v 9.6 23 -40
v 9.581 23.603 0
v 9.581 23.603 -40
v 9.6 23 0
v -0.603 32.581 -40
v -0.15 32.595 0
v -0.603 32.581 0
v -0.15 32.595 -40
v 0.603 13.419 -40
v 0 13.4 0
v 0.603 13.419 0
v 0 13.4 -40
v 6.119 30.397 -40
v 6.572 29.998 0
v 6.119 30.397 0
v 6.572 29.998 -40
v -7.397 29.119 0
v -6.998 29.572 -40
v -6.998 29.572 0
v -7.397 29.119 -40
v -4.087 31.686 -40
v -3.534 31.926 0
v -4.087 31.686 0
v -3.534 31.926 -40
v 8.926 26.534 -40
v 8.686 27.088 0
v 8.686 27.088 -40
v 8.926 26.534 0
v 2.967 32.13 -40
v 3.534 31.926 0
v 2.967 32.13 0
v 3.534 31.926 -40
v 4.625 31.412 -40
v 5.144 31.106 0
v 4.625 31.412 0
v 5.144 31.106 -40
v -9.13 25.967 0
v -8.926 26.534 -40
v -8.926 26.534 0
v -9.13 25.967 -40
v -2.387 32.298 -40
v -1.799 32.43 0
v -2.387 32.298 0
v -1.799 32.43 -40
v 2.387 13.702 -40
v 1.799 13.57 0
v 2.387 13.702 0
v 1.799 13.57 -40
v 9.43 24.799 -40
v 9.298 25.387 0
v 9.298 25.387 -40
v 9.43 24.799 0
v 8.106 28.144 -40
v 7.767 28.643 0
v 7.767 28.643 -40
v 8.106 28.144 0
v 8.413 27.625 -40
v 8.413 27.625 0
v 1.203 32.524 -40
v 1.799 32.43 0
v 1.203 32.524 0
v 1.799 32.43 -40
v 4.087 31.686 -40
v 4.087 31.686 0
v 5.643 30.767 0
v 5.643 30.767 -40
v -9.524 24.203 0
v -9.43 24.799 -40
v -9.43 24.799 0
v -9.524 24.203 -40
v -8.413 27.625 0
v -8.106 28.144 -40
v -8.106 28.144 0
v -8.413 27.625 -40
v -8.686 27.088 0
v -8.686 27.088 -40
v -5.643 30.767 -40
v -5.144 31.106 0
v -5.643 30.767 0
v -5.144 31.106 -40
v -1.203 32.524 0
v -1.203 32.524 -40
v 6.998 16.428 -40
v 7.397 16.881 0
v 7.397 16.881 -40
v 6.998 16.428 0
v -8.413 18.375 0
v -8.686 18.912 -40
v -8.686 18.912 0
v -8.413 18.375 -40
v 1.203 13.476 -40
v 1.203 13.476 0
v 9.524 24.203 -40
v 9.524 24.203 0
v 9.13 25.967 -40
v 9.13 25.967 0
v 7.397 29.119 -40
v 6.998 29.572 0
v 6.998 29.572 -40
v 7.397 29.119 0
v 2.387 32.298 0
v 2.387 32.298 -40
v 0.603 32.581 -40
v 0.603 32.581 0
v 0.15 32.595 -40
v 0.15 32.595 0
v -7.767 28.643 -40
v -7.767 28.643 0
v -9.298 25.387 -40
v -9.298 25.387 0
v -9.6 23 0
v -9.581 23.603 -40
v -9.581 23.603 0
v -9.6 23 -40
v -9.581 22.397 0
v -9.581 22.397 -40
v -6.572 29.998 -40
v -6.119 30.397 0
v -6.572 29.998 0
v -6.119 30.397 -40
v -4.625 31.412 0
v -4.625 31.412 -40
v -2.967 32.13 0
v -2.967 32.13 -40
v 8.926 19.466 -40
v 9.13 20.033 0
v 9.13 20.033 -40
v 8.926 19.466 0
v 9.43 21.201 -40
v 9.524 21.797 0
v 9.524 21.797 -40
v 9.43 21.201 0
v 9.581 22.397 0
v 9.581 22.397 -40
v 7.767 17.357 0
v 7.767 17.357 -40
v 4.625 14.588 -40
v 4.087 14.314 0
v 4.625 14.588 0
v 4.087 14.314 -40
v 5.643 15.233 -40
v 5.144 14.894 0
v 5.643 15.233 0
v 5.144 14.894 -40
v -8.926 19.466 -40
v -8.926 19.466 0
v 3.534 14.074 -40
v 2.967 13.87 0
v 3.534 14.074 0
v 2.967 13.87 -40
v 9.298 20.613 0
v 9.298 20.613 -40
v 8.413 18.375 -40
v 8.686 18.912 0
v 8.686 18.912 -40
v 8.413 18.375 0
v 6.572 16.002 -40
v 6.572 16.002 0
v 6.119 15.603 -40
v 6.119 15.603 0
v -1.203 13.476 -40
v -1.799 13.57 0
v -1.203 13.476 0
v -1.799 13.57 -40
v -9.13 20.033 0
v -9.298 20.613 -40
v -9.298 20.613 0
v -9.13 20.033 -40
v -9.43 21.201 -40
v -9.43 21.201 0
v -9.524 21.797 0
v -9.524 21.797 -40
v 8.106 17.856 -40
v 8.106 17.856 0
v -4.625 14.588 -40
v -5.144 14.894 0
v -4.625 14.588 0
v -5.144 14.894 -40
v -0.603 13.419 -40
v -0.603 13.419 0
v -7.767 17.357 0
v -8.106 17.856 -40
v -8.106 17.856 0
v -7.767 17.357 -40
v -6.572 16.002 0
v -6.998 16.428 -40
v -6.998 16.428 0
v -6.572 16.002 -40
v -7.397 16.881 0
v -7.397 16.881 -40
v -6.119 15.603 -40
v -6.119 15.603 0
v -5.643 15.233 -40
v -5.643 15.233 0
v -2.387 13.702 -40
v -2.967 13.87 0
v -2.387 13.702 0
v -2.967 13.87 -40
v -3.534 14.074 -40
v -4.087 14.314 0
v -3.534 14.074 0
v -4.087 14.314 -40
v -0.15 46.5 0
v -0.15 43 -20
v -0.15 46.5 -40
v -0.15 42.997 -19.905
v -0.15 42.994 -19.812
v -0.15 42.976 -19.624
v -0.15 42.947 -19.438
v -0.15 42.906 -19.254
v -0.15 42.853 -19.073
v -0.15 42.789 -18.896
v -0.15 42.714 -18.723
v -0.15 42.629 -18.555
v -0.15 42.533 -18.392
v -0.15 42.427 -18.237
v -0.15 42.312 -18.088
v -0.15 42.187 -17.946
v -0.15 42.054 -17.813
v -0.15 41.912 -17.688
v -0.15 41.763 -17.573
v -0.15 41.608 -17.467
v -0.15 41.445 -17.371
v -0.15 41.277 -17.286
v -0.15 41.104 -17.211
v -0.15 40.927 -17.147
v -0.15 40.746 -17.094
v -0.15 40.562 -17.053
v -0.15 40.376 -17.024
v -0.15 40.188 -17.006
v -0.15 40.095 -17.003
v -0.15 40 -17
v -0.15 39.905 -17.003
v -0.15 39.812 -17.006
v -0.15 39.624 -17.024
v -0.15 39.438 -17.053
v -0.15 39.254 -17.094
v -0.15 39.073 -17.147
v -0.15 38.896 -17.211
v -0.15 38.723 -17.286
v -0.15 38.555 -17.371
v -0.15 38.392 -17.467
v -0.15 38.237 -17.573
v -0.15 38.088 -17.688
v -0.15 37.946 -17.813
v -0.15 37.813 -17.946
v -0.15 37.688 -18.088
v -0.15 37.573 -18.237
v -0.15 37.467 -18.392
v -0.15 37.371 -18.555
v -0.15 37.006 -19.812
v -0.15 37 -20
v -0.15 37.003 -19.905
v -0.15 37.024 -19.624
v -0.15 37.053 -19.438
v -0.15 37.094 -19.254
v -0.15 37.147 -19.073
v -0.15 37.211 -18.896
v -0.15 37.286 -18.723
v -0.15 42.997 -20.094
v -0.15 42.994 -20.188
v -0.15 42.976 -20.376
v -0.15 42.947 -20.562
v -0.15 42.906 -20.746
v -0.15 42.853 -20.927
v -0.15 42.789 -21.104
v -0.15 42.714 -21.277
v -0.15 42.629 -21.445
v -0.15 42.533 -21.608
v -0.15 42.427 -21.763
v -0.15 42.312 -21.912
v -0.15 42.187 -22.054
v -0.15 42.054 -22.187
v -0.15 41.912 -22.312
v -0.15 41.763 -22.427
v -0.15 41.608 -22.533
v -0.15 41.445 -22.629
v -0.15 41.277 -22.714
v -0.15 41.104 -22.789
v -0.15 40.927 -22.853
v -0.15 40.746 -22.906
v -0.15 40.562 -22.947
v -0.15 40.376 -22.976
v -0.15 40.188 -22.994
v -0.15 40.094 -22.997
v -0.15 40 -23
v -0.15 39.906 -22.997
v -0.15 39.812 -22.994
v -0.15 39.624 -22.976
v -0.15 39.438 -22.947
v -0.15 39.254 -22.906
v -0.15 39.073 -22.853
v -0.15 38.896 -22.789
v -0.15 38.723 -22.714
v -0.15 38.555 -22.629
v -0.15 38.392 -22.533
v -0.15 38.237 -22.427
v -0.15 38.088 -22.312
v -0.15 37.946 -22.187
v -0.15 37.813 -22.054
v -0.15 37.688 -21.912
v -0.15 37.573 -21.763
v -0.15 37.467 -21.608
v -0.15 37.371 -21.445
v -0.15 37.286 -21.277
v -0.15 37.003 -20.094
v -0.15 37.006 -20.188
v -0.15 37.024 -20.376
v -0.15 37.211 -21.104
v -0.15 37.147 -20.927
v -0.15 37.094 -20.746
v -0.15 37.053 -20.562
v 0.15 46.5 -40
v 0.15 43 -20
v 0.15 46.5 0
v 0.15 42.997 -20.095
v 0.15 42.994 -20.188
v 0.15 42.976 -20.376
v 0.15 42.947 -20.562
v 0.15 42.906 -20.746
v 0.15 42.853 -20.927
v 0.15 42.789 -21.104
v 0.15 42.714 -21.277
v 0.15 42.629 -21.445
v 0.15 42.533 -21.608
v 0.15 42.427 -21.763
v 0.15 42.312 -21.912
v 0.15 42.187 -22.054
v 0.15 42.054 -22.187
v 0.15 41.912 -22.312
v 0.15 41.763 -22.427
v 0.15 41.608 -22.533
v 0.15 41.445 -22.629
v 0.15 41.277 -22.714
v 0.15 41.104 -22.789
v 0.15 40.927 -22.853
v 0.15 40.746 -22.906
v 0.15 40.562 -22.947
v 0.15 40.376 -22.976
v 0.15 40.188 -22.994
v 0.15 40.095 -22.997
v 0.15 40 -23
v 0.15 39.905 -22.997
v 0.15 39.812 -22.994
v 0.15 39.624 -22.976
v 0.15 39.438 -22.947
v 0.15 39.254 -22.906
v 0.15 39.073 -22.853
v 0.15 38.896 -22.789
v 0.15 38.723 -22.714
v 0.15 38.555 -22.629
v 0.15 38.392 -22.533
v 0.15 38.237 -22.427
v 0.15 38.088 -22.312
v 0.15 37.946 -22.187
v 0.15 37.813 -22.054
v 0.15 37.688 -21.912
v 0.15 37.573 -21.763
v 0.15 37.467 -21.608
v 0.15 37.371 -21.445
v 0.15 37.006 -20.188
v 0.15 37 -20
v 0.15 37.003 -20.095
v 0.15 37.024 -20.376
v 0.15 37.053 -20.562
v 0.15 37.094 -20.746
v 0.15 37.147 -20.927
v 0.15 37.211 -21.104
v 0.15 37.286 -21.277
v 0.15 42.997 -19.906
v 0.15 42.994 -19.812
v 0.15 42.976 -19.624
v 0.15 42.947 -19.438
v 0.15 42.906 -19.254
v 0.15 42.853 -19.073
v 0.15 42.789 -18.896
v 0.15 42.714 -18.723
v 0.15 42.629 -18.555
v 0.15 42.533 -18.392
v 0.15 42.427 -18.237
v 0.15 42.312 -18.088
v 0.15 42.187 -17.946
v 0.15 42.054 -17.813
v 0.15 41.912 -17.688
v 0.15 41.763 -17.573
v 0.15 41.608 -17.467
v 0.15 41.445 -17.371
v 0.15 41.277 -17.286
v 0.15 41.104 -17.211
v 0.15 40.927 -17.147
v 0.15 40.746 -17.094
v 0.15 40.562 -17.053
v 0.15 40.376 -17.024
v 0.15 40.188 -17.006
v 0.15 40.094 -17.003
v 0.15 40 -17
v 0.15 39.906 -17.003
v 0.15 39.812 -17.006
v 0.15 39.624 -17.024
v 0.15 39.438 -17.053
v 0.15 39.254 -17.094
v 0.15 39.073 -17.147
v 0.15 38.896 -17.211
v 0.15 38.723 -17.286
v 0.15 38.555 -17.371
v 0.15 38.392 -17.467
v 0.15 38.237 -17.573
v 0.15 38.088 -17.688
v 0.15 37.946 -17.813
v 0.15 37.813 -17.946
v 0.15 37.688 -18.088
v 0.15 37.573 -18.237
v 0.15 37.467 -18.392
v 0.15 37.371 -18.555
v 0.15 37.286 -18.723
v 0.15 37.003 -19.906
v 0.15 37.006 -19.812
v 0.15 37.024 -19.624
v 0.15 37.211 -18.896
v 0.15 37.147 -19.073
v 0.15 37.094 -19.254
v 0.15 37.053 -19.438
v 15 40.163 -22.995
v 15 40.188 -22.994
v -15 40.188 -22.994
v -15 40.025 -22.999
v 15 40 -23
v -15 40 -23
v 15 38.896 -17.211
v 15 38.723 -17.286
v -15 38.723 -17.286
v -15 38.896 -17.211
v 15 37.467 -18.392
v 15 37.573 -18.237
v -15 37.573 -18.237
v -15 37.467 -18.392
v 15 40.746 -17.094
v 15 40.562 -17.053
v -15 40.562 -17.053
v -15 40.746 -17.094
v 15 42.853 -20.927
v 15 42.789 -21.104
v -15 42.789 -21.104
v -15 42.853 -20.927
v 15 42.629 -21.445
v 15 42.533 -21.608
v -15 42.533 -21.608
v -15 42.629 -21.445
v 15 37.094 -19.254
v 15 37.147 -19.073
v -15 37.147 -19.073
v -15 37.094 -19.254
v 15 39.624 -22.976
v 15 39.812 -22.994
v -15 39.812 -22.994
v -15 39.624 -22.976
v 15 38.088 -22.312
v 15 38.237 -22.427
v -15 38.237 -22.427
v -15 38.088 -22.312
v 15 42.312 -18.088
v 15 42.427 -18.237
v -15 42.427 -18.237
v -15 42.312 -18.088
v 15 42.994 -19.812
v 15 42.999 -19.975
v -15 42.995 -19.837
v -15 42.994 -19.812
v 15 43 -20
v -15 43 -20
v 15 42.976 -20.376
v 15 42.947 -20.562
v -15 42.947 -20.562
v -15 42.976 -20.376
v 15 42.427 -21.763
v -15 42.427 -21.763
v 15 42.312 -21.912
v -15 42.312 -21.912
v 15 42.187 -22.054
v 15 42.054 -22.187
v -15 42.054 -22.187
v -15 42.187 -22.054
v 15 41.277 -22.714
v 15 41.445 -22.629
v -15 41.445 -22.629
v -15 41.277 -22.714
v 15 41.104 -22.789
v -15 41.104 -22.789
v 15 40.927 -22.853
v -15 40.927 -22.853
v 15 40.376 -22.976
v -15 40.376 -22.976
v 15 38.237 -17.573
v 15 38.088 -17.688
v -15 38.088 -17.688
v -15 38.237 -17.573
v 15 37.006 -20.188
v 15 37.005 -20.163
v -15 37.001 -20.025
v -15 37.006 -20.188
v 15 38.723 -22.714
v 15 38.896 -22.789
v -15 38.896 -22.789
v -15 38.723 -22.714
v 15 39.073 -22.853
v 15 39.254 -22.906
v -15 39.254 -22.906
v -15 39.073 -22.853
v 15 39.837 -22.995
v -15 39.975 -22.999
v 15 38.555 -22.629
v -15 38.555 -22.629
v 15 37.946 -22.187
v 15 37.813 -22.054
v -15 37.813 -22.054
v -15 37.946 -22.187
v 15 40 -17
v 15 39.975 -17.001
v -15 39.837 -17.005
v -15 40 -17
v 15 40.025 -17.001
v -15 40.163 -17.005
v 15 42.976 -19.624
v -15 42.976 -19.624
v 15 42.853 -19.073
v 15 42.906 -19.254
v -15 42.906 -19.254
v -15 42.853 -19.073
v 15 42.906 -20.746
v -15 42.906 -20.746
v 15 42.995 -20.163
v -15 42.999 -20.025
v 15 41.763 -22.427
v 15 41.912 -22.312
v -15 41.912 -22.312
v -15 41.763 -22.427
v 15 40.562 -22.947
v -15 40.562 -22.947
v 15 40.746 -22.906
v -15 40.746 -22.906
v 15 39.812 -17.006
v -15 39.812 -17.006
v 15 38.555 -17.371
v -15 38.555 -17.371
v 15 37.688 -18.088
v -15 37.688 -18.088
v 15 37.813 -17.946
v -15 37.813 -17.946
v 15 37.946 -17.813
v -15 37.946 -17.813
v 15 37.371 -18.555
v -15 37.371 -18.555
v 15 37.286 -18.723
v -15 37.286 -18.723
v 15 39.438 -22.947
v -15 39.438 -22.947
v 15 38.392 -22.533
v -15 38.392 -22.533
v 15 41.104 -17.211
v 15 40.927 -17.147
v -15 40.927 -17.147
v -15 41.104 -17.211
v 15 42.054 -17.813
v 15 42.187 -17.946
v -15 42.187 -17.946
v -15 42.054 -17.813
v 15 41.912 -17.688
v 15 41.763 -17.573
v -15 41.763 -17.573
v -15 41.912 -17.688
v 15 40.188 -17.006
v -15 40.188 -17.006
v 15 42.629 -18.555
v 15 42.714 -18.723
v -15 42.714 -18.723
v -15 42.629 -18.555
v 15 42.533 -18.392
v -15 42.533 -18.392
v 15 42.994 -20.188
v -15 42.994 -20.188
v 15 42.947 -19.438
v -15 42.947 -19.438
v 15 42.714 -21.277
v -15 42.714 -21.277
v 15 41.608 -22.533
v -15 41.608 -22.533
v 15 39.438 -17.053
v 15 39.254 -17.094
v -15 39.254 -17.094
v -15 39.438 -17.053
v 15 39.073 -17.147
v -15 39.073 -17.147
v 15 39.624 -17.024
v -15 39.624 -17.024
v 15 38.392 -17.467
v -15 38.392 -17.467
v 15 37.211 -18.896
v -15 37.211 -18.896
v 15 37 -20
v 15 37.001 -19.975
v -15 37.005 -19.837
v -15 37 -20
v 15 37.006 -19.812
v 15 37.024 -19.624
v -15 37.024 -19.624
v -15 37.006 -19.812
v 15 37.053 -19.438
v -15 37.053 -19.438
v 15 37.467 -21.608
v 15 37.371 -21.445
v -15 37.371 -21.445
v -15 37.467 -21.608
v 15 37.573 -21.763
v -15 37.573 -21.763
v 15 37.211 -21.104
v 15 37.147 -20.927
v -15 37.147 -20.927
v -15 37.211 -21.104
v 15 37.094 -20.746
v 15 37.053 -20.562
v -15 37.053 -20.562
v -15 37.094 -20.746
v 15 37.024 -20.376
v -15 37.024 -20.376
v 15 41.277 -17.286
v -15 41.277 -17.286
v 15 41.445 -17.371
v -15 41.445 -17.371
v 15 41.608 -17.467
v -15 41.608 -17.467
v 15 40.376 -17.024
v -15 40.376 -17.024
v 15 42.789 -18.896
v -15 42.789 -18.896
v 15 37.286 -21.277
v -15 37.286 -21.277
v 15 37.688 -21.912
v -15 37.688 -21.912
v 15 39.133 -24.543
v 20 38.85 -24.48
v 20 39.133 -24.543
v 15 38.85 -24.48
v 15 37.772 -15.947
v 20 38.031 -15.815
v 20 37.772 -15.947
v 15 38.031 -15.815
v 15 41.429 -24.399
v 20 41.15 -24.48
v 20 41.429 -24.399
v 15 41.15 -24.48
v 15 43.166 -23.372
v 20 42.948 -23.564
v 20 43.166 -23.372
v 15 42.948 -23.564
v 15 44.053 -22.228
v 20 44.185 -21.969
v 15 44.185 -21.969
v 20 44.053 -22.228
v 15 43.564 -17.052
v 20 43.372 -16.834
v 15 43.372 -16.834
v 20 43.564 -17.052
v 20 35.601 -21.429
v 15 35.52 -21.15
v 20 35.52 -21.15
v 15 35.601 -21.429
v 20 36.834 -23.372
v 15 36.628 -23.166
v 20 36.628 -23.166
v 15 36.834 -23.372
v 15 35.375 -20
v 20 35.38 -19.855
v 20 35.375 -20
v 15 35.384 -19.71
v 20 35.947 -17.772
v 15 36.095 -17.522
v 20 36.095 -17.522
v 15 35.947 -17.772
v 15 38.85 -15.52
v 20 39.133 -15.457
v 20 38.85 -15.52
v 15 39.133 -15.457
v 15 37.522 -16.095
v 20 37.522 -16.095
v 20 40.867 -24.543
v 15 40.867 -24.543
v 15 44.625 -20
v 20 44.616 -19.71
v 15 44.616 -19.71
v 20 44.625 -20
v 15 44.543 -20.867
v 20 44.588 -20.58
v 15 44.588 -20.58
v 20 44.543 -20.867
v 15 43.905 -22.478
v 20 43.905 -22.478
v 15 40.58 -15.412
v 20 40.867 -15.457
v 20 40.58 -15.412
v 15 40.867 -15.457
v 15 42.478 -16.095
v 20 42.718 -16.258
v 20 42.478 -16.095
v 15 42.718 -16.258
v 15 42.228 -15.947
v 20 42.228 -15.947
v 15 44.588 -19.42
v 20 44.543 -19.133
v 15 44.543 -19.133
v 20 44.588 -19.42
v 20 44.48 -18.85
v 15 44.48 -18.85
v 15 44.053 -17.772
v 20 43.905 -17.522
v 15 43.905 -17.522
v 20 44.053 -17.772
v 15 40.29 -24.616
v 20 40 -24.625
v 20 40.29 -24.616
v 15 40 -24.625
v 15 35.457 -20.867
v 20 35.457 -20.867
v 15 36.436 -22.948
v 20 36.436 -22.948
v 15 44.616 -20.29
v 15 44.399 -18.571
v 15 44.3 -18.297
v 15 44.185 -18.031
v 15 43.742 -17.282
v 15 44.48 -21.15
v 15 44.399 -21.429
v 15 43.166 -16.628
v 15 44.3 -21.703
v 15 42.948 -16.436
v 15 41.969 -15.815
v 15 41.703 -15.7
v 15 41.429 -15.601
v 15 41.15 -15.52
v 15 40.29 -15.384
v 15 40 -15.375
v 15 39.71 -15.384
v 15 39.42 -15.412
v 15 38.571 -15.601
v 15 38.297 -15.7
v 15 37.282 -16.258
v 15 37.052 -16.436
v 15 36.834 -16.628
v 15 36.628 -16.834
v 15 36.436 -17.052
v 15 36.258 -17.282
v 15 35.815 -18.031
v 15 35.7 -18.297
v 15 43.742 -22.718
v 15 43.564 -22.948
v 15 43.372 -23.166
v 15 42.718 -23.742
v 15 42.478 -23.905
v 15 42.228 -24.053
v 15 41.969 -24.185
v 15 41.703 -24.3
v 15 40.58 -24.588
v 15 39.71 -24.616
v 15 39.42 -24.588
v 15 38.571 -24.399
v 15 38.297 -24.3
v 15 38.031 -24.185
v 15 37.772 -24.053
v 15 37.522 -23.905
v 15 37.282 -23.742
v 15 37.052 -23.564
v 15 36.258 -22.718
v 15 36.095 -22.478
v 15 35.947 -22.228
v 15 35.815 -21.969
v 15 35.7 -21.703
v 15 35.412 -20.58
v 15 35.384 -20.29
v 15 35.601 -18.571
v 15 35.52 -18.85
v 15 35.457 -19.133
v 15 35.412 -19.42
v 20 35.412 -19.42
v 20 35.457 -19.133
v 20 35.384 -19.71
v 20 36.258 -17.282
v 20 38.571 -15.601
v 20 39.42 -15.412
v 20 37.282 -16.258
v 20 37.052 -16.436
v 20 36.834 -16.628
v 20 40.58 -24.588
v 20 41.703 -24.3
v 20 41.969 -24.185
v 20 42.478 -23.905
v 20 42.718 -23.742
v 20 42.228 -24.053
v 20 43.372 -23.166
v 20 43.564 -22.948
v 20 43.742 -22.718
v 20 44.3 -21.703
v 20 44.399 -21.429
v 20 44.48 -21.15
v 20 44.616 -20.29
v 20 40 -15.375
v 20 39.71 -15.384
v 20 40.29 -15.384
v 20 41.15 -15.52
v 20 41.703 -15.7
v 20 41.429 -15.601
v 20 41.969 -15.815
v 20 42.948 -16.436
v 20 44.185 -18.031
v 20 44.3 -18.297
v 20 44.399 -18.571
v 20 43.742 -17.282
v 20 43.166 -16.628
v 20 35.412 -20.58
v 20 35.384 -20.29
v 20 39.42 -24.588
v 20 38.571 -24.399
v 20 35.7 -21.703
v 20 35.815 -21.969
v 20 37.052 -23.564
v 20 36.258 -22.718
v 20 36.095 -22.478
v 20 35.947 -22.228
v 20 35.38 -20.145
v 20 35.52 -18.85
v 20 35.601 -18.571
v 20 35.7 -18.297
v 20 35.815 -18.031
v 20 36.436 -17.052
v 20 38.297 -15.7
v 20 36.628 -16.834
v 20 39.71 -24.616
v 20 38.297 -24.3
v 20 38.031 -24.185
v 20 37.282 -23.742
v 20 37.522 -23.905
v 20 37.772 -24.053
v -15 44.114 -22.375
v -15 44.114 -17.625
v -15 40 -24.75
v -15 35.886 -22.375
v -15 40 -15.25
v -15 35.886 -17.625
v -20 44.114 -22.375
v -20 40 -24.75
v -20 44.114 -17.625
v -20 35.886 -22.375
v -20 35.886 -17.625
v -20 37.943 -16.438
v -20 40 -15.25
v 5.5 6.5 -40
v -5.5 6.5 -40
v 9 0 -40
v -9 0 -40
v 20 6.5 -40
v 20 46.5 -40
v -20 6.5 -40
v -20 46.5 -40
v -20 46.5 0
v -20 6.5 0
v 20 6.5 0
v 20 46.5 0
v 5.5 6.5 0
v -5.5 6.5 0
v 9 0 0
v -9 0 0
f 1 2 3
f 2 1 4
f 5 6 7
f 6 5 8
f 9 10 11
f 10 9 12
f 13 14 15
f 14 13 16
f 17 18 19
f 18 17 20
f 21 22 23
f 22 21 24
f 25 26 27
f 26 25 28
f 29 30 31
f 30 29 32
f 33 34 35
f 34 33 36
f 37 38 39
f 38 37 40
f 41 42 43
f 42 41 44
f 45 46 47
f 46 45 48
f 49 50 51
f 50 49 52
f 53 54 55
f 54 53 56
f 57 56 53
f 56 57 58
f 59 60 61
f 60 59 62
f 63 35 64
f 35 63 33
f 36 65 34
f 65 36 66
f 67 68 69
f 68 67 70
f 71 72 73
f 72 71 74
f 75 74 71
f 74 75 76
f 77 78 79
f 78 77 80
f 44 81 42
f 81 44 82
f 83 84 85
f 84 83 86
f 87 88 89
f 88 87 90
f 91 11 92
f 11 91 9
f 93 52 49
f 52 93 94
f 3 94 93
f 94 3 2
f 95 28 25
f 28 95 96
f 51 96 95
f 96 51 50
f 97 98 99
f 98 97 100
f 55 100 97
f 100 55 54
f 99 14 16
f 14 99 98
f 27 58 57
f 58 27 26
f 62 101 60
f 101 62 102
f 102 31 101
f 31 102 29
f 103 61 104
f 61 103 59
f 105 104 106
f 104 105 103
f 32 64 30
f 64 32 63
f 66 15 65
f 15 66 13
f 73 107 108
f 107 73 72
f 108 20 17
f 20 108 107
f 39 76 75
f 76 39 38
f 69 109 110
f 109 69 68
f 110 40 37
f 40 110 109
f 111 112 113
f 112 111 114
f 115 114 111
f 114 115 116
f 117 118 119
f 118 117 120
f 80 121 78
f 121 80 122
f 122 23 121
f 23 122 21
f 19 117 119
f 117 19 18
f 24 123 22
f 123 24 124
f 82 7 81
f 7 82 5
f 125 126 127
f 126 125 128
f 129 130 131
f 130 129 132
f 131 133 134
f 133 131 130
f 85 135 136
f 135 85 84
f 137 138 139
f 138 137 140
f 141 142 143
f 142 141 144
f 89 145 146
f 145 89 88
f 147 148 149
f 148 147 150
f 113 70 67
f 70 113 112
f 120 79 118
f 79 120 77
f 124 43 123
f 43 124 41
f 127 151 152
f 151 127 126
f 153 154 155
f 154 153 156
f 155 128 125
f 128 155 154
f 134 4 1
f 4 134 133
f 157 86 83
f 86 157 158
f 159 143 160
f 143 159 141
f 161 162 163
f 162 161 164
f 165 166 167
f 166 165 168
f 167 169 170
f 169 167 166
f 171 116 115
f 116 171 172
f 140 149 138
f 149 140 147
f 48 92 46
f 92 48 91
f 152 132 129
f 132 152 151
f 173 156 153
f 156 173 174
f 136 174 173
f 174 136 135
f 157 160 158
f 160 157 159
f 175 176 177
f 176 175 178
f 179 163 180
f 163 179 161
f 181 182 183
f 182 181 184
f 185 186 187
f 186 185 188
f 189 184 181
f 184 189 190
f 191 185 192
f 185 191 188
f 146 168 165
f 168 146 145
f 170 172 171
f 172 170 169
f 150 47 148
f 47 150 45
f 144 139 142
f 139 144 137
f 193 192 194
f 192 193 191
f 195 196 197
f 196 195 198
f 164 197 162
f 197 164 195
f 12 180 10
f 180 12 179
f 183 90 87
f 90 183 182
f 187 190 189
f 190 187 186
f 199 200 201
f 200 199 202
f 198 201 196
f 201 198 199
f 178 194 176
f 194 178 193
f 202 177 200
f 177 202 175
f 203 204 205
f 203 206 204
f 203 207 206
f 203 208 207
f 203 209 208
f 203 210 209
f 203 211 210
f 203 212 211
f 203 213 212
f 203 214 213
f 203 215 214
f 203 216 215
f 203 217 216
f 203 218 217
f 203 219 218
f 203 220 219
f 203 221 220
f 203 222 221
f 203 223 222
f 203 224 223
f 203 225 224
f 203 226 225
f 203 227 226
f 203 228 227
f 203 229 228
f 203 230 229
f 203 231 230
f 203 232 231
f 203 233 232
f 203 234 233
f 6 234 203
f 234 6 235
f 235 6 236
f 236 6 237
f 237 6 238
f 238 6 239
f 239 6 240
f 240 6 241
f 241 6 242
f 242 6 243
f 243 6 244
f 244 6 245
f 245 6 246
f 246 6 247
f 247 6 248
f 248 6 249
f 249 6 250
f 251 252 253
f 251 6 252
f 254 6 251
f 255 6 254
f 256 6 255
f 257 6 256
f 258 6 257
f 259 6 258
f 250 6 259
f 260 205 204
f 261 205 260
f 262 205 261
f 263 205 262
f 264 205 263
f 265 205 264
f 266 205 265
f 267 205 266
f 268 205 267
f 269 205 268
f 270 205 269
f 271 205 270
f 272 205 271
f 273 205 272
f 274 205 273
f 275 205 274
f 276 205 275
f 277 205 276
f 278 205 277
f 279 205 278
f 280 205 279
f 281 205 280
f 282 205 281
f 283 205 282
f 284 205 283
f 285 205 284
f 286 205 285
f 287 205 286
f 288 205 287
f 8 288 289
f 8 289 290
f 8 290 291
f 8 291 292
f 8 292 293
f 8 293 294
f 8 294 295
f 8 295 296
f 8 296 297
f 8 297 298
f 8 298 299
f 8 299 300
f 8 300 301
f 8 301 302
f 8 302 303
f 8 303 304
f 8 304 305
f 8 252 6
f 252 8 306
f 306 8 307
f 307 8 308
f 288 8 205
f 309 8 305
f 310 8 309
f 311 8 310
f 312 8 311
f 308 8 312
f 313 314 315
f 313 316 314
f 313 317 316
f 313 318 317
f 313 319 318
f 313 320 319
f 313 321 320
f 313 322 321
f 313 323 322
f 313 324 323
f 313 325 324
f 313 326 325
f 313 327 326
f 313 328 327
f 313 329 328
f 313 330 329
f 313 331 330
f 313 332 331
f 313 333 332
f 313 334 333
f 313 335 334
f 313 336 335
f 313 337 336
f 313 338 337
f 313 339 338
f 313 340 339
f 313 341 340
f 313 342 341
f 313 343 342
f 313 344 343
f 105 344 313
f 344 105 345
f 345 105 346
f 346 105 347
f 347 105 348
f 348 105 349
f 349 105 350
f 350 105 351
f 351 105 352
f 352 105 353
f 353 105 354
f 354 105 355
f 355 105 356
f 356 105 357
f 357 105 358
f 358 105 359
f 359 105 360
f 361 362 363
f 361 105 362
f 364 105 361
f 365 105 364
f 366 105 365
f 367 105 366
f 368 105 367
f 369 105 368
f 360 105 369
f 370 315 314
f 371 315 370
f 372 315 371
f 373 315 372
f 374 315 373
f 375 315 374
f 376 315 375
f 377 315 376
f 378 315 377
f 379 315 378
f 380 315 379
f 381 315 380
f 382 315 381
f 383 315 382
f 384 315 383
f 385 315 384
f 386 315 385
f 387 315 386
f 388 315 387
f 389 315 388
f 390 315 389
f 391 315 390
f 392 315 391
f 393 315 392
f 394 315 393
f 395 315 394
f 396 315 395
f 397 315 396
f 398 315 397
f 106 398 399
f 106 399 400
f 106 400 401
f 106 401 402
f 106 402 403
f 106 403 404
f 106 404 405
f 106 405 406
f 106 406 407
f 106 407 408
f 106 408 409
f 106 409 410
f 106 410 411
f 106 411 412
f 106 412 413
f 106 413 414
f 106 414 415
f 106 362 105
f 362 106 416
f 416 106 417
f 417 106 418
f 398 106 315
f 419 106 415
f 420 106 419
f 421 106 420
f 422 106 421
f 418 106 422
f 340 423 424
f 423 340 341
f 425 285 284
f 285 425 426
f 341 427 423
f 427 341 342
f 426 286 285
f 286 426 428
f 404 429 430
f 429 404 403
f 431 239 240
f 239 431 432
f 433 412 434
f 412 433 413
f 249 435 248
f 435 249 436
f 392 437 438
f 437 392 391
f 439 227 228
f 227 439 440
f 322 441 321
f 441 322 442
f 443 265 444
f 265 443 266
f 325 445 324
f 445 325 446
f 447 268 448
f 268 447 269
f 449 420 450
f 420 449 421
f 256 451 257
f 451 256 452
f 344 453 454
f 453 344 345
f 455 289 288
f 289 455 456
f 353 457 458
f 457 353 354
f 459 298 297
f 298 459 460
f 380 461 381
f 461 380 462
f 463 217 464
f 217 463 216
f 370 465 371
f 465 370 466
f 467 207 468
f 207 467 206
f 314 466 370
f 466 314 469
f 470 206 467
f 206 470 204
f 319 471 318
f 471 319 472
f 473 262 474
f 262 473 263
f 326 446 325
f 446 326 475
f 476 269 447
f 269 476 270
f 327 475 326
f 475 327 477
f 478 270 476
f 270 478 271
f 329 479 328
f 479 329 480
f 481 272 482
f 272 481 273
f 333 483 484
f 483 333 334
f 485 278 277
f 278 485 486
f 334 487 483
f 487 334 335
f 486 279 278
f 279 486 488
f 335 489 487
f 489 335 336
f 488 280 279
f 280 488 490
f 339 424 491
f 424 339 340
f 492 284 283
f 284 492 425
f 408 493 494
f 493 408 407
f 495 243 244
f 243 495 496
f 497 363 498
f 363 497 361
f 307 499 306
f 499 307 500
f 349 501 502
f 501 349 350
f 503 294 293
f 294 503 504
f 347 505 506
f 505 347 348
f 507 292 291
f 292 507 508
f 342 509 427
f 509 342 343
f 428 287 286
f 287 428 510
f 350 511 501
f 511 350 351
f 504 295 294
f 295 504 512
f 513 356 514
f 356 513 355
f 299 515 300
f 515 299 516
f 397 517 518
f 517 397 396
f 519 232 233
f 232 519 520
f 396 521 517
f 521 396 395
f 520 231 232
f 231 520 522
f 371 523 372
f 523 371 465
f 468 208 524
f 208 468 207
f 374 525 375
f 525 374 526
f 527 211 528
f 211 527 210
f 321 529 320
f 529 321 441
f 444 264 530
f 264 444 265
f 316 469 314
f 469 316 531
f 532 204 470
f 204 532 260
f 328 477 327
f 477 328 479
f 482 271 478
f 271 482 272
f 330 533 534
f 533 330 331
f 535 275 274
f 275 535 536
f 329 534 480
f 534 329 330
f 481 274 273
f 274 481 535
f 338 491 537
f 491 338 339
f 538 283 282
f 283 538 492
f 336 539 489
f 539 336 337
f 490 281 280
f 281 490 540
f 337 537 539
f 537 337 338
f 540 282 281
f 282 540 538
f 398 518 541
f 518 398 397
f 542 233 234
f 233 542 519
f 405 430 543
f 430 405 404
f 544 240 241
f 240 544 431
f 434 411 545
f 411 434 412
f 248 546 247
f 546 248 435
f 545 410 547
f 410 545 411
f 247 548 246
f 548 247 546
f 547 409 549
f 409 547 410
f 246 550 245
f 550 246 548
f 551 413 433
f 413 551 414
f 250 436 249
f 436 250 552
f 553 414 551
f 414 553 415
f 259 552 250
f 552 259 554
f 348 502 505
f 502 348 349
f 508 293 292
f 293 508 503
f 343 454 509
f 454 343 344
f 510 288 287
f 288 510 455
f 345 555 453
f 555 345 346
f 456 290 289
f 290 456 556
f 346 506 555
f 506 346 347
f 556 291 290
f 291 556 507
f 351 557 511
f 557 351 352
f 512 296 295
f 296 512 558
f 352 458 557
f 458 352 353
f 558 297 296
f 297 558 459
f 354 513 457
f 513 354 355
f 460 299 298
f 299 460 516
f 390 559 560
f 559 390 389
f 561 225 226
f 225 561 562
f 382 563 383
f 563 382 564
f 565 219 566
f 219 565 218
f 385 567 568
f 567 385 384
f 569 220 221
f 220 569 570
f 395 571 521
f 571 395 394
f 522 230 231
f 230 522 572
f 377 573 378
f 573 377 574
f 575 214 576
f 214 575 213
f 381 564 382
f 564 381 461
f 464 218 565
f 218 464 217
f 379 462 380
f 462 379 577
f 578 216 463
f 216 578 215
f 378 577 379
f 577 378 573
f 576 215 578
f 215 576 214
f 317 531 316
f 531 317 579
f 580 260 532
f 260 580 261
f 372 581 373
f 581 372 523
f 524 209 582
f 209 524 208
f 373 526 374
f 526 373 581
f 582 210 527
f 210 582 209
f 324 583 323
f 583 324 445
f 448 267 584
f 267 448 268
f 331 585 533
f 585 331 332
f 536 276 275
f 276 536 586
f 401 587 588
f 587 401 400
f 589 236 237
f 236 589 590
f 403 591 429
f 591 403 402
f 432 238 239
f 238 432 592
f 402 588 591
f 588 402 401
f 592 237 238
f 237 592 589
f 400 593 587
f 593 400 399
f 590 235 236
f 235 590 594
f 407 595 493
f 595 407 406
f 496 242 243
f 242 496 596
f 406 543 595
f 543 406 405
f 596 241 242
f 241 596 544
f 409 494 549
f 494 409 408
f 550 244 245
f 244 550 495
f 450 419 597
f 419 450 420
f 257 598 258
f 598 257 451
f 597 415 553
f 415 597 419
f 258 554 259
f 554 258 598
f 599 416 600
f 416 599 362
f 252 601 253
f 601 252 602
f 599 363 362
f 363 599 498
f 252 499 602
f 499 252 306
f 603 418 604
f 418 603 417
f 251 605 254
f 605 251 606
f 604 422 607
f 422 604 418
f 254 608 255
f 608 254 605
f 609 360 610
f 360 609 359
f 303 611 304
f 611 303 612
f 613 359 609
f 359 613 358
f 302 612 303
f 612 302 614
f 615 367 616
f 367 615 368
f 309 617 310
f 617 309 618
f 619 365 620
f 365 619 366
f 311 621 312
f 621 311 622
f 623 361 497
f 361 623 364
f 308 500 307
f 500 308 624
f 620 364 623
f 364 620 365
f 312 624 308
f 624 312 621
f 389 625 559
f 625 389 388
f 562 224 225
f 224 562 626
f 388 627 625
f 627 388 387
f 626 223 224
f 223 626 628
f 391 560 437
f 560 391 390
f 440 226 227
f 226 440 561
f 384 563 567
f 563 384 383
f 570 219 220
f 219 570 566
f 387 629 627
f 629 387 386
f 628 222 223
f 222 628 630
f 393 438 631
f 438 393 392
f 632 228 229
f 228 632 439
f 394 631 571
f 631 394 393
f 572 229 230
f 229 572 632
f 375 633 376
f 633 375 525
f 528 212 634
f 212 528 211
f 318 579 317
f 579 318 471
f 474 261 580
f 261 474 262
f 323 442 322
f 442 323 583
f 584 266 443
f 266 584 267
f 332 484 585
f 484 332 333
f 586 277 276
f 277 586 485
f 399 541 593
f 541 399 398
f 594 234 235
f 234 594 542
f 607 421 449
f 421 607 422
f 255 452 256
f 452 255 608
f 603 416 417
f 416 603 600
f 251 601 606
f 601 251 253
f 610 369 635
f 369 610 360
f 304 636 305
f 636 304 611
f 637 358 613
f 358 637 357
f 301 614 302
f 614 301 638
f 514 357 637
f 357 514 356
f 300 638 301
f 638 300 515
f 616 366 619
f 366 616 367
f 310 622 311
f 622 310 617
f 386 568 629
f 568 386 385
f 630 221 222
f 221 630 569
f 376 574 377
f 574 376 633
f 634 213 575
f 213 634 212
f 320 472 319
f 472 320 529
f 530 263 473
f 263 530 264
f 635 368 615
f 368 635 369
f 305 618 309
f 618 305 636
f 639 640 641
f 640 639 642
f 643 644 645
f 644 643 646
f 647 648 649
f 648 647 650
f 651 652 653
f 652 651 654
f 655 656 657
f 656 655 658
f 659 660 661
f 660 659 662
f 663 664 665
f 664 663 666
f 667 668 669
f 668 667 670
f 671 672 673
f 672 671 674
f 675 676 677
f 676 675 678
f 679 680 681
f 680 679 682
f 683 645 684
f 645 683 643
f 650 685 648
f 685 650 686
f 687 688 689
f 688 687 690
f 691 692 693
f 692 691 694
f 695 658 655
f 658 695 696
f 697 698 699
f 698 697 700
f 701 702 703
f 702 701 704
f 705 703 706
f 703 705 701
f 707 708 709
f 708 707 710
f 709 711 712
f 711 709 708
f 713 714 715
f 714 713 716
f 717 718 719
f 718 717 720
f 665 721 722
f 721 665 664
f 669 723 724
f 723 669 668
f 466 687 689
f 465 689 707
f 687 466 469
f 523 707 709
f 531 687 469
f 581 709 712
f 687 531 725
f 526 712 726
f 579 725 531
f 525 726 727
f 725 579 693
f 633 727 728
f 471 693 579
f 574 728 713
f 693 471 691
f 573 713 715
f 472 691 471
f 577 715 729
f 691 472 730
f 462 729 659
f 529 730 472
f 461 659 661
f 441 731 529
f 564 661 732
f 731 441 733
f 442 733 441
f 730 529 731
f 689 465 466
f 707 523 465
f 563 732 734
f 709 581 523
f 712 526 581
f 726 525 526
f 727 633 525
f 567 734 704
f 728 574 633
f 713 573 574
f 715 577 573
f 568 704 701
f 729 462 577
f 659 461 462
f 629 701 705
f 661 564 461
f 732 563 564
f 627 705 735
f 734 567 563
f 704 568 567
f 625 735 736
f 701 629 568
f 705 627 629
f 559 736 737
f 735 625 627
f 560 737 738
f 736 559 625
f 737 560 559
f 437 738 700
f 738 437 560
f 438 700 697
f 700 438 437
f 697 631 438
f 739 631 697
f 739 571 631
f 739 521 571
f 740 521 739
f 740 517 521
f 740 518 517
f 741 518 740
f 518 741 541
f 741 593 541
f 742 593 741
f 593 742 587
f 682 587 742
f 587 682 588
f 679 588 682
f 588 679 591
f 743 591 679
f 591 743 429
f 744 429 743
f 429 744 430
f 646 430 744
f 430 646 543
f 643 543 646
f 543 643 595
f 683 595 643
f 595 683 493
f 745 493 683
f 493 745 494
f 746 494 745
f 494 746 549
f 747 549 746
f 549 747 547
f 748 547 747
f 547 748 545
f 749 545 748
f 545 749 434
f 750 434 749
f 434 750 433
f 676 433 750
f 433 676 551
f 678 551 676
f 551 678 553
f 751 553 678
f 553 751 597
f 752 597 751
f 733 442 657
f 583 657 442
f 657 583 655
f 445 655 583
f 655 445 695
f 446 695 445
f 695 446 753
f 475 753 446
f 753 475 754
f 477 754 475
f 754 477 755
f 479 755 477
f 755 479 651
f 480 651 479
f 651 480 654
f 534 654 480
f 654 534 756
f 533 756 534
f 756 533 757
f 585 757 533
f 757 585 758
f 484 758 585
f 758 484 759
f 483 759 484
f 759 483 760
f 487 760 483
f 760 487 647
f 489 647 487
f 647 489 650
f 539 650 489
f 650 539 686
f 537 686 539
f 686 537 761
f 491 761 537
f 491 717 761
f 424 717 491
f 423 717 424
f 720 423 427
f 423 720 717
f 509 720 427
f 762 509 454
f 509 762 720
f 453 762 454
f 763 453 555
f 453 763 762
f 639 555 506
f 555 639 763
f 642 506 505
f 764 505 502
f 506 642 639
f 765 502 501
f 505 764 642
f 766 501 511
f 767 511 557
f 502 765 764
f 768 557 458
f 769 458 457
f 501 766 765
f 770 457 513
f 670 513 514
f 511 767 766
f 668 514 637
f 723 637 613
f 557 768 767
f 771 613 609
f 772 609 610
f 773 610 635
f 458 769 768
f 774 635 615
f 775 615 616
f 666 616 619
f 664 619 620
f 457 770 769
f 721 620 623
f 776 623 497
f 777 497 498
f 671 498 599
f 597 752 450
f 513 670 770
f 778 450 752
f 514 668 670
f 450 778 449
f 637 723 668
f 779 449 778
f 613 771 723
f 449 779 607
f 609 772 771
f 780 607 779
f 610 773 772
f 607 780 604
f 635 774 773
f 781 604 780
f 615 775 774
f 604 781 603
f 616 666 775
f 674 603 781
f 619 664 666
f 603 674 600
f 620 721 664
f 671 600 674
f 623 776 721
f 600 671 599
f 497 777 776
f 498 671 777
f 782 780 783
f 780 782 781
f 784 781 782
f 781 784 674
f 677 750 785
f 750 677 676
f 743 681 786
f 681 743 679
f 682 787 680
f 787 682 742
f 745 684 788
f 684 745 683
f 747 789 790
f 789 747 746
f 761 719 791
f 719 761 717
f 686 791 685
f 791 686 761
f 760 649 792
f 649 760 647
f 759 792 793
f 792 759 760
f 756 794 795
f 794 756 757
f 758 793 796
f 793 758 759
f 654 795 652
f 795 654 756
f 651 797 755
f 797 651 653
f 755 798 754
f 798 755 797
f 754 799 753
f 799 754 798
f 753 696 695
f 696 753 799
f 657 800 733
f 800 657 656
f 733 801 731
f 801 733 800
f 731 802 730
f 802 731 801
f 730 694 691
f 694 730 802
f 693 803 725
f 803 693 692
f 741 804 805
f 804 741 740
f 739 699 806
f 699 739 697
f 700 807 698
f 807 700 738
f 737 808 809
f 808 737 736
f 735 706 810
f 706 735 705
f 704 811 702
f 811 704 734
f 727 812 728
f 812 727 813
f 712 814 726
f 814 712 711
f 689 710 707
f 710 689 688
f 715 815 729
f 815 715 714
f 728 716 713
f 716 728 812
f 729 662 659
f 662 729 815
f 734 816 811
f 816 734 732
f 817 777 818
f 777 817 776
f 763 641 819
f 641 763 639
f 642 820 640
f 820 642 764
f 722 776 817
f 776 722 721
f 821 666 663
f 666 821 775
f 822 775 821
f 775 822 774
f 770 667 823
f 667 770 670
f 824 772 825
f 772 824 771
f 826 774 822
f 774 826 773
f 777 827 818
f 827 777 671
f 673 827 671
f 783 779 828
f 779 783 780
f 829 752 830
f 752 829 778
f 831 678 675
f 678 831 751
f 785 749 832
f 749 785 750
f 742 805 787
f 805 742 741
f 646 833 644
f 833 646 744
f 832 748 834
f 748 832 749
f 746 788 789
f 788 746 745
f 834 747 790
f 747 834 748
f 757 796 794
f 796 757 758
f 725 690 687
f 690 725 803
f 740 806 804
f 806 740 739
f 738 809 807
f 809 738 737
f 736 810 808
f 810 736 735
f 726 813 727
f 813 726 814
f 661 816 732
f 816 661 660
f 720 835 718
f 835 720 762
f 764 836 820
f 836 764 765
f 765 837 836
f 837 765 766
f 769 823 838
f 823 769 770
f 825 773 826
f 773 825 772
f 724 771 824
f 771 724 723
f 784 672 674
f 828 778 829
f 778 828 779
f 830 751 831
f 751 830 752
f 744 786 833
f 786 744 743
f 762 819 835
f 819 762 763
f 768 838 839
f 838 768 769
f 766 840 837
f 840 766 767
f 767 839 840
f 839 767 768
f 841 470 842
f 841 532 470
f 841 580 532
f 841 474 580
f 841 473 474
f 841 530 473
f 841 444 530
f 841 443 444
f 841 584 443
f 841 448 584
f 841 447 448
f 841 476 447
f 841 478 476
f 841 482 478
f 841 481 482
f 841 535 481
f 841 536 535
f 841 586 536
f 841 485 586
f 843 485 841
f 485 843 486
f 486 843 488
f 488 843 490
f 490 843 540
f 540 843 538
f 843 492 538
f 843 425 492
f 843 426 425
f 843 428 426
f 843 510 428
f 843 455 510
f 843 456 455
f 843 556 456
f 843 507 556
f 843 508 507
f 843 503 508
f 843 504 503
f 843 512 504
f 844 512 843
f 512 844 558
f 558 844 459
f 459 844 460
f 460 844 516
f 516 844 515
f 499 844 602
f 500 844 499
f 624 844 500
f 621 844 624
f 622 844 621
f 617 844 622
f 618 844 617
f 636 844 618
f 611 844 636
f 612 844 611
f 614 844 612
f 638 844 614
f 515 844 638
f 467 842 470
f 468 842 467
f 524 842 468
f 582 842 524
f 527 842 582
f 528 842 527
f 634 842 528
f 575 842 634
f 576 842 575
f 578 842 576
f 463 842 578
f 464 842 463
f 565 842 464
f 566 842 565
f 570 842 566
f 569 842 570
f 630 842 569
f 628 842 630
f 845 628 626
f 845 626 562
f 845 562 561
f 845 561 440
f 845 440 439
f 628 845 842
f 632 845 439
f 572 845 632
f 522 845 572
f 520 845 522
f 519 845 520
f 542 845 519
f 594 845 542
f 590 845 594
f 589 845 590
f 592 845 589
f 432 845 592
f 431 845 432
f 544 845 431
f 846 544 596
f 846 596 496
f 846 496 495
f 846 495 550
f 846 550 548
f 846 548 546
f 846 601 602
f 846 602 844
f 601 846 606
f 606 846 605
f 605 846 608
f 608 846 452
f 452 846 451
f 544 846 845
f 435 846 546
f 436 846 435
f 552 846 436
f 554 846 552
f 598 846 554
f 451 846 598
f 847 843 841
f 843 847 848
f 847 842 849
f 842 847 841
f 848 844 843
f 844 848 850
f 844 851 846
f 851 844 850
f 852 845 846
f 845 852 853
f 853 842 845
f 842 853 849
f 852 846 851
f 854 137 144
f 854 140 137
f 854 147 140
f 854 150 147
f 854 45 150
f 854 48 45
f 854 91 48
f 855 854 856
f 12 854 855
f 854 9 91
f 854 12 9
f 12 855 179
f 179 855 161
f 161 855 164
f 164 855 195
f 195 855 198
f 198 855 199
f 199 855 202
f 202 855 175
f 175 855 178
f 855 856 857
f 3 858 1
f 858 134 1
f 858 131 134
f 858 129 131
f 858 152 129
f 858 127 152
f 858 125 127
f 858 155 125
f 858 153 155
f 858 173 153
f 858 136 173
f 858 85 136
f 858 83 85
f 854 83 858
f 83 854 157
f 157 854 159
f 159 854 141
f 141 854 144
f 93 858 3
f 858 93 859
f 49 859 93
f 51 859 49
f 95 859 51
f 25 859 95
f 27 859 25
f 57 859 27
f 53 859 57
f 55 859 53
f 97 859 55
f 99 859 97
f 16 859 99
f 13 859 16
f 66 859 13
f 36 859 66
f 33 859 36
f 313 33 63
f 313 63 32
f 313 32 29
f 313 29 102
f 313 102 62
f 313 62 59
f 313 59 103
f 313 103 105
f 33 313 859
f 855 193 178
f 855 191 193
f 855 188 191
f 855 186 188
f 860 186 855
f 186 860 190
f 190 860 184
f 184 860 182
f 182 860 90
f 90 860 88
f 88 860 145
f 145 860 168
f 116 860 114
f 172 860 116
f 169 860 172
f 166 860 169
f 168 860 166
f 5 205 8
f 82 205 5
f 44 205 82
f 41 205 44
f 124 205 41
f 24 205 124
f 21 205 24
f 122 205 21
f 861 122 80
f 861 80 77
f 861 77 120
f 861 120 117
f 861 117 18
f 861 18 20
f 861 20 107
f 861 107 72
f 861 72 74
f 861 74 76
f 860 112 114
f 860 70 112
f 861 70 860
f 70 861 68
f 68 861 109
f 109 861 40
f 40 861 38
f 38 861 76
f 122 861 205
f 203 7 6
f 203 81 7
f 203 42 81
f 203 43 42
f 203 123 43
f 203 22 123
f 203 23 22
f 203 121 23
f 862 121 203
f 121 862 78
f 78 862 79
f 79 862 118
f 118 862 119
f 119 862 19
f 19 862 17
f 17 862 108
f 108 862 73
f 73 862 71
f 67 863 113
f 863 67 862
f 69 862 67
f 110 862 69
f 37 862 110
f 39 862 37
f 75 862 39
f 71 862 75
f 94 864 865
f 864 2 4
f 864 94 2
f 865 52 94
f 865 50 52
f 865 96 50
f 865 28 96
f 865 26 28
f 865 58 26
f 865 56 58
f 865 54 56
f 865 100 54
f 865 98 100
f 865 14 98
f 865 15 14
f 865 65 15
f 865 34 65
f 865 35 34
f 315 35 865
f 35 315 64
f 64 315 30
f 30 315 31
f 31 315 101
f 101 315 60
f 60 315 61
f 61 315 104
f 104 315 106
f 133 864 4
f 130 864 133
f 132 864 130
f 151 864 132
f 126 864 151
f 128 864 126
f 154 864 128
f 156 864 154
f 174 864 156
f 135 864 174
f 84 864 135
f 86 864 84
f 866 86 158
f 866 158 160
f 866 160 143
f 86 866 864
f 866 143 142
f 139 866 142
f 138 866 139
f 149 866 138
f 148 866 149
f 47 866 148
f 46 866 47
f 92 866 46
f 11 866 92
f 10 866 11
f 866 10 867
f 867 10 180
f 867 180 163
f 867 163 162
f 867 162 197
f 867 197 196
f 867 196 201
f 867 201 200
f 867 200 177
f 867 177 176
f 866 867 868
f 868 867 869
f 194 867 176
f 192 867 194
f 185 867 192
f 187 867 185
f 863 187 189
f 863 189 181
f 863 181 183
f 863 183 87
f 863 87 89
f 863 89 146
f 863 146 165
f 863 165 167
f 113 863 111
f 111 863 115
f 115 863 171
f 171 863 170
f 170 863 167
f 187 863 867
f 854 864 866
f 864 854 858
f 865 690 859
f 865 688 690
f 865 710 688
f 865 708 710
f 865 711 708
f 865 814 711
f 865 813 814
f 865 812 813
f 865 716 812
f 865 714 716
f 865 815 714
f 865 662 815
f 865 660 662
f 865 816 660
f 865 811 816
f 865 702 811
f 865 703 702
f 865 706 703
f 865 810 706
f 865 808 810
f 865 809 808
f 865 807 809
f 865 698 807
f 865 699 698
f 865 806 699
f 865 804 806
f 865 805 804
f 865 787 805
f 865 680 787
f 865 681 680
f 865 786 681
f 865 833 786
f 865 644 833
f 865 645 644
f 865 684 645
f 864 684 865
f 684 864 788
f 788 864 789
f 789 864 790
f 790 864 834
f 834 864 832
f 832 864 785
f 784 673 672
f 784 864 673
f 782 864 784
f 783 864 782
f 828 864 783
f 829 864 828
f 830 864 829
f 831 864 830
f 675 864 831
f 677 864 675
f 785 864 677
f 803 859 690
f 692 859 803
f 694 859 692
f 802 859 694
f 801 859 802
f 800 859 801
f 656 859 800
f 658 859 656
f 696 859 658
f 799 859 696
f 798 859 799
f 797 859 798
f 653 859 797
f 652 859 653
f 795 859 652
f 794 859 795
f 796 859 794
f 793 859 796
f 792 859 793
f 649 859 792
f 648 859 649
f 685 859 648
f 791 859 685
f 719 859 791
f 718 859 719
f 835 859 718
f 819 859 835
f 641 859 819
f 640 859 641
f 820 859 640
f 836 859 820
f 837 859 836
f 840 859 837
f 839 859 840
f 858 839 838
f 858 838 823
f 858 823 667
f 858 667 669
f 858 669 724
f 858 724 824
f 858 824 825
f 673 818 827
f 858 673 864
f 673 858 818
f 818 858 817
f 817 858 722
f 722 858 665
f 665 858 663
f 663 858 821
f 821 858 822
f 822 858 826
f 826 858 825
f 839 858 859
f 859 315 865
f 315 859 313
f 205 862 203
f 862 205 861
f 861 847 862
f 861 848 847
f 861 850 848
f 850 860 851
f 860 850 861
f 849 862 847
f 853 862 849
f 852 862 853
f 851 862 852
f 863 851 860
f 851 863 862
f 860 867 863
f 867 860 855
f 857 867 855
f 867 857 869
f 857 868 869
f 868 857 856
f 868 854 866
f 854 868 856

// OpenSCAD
// Nanoject holder for Cartesian stereotaxic frame
// Pedersen Lab, January 2018

resolution = 100;
wedge_h = 40; // should be 45
wedge_base_w = 18;
wedge_depth = 6.5;
wedge_neck_w = 11;
wedge_base_to_center = 23;
holder_width = 40; // 31.5 makes symmetrical
nanoject_neck = 19.2;
fastener_gap = 0.3;
//fastener_lug_size = 10;
fastener_screw_hole_size = 6;
fastener_head_size = 9.25;
fastener_nut_width = 9.5;
fastener_head_depth = 5;

difference () {
    union () {
        translate ([0,0,-wedge_h/2])
        linear_extrude (height=wedge_h, center=true, convexity=10, twist=0)
        polygon (  [[wedge_base_w/2, 0], [-wedge_base_w/2, 0],
                    [wedge_neck_w/2, wedge_depth], [-wedge_neck_w/2, wedge_depth],
                    [holder_width/2, wedge_depth], [-holder_width/2, wedge_depth],
                    [holder_width/2, wedge_depth+holder_width], [-holder_width/2, wedge_depth+holder_width]
                   ], [[0,1,3,5,7,6,4,2,0]]
        );
 //       translate ([holder_width/2+fastener_lug_size/2, wedge_base_to_center, -wedge_h/2]) 
 //       minkowski () {
 //           cube (fastener_lug_size, center=true);
 //           sphere (0.2);
 //       }
    }   
    union () { // subtracted shapes
       translate ([0,wedge_base_to_center,-wedge_h/2]) cylinder (d=nanoject_neck, h=wedge_h+1, center=true, $fn=resolution);
//       translate ([holder_width/2,wedge_base_to_center,-wedge_h/2]) cube ([holder_width, fastener_gap, wedge_h+1], center=true); // for fastener gap to the side
       translate ([0,(holder_width+wedge_depth),-wedge_h/2]) cube ([fastener_gap, holder_width, wedge_h+1], center=true); // for fastener in front
       translate ([0,40,-wedge_h/2]) rotate ([0,90,0]) cylinder (d=fastener_screw_hole_size, h=holder_width+1, center=true, $fn=resolution); 
       translate ([holder_width/2,40,-wedge_h/2]) rotate ([0,90,0]) cylinder (d=fastener_head_size, h=fastener_head_depth*2, center=true, $fn=resolution); 
       translate ([-holder_width/2,40,-wedge_h/2]) rotate ([0,90,0]) cylinder (d=fastener_nut_width, h=fastener_head_depth*2, center=true, $fn=6);        
    }
}

// any final added positives
